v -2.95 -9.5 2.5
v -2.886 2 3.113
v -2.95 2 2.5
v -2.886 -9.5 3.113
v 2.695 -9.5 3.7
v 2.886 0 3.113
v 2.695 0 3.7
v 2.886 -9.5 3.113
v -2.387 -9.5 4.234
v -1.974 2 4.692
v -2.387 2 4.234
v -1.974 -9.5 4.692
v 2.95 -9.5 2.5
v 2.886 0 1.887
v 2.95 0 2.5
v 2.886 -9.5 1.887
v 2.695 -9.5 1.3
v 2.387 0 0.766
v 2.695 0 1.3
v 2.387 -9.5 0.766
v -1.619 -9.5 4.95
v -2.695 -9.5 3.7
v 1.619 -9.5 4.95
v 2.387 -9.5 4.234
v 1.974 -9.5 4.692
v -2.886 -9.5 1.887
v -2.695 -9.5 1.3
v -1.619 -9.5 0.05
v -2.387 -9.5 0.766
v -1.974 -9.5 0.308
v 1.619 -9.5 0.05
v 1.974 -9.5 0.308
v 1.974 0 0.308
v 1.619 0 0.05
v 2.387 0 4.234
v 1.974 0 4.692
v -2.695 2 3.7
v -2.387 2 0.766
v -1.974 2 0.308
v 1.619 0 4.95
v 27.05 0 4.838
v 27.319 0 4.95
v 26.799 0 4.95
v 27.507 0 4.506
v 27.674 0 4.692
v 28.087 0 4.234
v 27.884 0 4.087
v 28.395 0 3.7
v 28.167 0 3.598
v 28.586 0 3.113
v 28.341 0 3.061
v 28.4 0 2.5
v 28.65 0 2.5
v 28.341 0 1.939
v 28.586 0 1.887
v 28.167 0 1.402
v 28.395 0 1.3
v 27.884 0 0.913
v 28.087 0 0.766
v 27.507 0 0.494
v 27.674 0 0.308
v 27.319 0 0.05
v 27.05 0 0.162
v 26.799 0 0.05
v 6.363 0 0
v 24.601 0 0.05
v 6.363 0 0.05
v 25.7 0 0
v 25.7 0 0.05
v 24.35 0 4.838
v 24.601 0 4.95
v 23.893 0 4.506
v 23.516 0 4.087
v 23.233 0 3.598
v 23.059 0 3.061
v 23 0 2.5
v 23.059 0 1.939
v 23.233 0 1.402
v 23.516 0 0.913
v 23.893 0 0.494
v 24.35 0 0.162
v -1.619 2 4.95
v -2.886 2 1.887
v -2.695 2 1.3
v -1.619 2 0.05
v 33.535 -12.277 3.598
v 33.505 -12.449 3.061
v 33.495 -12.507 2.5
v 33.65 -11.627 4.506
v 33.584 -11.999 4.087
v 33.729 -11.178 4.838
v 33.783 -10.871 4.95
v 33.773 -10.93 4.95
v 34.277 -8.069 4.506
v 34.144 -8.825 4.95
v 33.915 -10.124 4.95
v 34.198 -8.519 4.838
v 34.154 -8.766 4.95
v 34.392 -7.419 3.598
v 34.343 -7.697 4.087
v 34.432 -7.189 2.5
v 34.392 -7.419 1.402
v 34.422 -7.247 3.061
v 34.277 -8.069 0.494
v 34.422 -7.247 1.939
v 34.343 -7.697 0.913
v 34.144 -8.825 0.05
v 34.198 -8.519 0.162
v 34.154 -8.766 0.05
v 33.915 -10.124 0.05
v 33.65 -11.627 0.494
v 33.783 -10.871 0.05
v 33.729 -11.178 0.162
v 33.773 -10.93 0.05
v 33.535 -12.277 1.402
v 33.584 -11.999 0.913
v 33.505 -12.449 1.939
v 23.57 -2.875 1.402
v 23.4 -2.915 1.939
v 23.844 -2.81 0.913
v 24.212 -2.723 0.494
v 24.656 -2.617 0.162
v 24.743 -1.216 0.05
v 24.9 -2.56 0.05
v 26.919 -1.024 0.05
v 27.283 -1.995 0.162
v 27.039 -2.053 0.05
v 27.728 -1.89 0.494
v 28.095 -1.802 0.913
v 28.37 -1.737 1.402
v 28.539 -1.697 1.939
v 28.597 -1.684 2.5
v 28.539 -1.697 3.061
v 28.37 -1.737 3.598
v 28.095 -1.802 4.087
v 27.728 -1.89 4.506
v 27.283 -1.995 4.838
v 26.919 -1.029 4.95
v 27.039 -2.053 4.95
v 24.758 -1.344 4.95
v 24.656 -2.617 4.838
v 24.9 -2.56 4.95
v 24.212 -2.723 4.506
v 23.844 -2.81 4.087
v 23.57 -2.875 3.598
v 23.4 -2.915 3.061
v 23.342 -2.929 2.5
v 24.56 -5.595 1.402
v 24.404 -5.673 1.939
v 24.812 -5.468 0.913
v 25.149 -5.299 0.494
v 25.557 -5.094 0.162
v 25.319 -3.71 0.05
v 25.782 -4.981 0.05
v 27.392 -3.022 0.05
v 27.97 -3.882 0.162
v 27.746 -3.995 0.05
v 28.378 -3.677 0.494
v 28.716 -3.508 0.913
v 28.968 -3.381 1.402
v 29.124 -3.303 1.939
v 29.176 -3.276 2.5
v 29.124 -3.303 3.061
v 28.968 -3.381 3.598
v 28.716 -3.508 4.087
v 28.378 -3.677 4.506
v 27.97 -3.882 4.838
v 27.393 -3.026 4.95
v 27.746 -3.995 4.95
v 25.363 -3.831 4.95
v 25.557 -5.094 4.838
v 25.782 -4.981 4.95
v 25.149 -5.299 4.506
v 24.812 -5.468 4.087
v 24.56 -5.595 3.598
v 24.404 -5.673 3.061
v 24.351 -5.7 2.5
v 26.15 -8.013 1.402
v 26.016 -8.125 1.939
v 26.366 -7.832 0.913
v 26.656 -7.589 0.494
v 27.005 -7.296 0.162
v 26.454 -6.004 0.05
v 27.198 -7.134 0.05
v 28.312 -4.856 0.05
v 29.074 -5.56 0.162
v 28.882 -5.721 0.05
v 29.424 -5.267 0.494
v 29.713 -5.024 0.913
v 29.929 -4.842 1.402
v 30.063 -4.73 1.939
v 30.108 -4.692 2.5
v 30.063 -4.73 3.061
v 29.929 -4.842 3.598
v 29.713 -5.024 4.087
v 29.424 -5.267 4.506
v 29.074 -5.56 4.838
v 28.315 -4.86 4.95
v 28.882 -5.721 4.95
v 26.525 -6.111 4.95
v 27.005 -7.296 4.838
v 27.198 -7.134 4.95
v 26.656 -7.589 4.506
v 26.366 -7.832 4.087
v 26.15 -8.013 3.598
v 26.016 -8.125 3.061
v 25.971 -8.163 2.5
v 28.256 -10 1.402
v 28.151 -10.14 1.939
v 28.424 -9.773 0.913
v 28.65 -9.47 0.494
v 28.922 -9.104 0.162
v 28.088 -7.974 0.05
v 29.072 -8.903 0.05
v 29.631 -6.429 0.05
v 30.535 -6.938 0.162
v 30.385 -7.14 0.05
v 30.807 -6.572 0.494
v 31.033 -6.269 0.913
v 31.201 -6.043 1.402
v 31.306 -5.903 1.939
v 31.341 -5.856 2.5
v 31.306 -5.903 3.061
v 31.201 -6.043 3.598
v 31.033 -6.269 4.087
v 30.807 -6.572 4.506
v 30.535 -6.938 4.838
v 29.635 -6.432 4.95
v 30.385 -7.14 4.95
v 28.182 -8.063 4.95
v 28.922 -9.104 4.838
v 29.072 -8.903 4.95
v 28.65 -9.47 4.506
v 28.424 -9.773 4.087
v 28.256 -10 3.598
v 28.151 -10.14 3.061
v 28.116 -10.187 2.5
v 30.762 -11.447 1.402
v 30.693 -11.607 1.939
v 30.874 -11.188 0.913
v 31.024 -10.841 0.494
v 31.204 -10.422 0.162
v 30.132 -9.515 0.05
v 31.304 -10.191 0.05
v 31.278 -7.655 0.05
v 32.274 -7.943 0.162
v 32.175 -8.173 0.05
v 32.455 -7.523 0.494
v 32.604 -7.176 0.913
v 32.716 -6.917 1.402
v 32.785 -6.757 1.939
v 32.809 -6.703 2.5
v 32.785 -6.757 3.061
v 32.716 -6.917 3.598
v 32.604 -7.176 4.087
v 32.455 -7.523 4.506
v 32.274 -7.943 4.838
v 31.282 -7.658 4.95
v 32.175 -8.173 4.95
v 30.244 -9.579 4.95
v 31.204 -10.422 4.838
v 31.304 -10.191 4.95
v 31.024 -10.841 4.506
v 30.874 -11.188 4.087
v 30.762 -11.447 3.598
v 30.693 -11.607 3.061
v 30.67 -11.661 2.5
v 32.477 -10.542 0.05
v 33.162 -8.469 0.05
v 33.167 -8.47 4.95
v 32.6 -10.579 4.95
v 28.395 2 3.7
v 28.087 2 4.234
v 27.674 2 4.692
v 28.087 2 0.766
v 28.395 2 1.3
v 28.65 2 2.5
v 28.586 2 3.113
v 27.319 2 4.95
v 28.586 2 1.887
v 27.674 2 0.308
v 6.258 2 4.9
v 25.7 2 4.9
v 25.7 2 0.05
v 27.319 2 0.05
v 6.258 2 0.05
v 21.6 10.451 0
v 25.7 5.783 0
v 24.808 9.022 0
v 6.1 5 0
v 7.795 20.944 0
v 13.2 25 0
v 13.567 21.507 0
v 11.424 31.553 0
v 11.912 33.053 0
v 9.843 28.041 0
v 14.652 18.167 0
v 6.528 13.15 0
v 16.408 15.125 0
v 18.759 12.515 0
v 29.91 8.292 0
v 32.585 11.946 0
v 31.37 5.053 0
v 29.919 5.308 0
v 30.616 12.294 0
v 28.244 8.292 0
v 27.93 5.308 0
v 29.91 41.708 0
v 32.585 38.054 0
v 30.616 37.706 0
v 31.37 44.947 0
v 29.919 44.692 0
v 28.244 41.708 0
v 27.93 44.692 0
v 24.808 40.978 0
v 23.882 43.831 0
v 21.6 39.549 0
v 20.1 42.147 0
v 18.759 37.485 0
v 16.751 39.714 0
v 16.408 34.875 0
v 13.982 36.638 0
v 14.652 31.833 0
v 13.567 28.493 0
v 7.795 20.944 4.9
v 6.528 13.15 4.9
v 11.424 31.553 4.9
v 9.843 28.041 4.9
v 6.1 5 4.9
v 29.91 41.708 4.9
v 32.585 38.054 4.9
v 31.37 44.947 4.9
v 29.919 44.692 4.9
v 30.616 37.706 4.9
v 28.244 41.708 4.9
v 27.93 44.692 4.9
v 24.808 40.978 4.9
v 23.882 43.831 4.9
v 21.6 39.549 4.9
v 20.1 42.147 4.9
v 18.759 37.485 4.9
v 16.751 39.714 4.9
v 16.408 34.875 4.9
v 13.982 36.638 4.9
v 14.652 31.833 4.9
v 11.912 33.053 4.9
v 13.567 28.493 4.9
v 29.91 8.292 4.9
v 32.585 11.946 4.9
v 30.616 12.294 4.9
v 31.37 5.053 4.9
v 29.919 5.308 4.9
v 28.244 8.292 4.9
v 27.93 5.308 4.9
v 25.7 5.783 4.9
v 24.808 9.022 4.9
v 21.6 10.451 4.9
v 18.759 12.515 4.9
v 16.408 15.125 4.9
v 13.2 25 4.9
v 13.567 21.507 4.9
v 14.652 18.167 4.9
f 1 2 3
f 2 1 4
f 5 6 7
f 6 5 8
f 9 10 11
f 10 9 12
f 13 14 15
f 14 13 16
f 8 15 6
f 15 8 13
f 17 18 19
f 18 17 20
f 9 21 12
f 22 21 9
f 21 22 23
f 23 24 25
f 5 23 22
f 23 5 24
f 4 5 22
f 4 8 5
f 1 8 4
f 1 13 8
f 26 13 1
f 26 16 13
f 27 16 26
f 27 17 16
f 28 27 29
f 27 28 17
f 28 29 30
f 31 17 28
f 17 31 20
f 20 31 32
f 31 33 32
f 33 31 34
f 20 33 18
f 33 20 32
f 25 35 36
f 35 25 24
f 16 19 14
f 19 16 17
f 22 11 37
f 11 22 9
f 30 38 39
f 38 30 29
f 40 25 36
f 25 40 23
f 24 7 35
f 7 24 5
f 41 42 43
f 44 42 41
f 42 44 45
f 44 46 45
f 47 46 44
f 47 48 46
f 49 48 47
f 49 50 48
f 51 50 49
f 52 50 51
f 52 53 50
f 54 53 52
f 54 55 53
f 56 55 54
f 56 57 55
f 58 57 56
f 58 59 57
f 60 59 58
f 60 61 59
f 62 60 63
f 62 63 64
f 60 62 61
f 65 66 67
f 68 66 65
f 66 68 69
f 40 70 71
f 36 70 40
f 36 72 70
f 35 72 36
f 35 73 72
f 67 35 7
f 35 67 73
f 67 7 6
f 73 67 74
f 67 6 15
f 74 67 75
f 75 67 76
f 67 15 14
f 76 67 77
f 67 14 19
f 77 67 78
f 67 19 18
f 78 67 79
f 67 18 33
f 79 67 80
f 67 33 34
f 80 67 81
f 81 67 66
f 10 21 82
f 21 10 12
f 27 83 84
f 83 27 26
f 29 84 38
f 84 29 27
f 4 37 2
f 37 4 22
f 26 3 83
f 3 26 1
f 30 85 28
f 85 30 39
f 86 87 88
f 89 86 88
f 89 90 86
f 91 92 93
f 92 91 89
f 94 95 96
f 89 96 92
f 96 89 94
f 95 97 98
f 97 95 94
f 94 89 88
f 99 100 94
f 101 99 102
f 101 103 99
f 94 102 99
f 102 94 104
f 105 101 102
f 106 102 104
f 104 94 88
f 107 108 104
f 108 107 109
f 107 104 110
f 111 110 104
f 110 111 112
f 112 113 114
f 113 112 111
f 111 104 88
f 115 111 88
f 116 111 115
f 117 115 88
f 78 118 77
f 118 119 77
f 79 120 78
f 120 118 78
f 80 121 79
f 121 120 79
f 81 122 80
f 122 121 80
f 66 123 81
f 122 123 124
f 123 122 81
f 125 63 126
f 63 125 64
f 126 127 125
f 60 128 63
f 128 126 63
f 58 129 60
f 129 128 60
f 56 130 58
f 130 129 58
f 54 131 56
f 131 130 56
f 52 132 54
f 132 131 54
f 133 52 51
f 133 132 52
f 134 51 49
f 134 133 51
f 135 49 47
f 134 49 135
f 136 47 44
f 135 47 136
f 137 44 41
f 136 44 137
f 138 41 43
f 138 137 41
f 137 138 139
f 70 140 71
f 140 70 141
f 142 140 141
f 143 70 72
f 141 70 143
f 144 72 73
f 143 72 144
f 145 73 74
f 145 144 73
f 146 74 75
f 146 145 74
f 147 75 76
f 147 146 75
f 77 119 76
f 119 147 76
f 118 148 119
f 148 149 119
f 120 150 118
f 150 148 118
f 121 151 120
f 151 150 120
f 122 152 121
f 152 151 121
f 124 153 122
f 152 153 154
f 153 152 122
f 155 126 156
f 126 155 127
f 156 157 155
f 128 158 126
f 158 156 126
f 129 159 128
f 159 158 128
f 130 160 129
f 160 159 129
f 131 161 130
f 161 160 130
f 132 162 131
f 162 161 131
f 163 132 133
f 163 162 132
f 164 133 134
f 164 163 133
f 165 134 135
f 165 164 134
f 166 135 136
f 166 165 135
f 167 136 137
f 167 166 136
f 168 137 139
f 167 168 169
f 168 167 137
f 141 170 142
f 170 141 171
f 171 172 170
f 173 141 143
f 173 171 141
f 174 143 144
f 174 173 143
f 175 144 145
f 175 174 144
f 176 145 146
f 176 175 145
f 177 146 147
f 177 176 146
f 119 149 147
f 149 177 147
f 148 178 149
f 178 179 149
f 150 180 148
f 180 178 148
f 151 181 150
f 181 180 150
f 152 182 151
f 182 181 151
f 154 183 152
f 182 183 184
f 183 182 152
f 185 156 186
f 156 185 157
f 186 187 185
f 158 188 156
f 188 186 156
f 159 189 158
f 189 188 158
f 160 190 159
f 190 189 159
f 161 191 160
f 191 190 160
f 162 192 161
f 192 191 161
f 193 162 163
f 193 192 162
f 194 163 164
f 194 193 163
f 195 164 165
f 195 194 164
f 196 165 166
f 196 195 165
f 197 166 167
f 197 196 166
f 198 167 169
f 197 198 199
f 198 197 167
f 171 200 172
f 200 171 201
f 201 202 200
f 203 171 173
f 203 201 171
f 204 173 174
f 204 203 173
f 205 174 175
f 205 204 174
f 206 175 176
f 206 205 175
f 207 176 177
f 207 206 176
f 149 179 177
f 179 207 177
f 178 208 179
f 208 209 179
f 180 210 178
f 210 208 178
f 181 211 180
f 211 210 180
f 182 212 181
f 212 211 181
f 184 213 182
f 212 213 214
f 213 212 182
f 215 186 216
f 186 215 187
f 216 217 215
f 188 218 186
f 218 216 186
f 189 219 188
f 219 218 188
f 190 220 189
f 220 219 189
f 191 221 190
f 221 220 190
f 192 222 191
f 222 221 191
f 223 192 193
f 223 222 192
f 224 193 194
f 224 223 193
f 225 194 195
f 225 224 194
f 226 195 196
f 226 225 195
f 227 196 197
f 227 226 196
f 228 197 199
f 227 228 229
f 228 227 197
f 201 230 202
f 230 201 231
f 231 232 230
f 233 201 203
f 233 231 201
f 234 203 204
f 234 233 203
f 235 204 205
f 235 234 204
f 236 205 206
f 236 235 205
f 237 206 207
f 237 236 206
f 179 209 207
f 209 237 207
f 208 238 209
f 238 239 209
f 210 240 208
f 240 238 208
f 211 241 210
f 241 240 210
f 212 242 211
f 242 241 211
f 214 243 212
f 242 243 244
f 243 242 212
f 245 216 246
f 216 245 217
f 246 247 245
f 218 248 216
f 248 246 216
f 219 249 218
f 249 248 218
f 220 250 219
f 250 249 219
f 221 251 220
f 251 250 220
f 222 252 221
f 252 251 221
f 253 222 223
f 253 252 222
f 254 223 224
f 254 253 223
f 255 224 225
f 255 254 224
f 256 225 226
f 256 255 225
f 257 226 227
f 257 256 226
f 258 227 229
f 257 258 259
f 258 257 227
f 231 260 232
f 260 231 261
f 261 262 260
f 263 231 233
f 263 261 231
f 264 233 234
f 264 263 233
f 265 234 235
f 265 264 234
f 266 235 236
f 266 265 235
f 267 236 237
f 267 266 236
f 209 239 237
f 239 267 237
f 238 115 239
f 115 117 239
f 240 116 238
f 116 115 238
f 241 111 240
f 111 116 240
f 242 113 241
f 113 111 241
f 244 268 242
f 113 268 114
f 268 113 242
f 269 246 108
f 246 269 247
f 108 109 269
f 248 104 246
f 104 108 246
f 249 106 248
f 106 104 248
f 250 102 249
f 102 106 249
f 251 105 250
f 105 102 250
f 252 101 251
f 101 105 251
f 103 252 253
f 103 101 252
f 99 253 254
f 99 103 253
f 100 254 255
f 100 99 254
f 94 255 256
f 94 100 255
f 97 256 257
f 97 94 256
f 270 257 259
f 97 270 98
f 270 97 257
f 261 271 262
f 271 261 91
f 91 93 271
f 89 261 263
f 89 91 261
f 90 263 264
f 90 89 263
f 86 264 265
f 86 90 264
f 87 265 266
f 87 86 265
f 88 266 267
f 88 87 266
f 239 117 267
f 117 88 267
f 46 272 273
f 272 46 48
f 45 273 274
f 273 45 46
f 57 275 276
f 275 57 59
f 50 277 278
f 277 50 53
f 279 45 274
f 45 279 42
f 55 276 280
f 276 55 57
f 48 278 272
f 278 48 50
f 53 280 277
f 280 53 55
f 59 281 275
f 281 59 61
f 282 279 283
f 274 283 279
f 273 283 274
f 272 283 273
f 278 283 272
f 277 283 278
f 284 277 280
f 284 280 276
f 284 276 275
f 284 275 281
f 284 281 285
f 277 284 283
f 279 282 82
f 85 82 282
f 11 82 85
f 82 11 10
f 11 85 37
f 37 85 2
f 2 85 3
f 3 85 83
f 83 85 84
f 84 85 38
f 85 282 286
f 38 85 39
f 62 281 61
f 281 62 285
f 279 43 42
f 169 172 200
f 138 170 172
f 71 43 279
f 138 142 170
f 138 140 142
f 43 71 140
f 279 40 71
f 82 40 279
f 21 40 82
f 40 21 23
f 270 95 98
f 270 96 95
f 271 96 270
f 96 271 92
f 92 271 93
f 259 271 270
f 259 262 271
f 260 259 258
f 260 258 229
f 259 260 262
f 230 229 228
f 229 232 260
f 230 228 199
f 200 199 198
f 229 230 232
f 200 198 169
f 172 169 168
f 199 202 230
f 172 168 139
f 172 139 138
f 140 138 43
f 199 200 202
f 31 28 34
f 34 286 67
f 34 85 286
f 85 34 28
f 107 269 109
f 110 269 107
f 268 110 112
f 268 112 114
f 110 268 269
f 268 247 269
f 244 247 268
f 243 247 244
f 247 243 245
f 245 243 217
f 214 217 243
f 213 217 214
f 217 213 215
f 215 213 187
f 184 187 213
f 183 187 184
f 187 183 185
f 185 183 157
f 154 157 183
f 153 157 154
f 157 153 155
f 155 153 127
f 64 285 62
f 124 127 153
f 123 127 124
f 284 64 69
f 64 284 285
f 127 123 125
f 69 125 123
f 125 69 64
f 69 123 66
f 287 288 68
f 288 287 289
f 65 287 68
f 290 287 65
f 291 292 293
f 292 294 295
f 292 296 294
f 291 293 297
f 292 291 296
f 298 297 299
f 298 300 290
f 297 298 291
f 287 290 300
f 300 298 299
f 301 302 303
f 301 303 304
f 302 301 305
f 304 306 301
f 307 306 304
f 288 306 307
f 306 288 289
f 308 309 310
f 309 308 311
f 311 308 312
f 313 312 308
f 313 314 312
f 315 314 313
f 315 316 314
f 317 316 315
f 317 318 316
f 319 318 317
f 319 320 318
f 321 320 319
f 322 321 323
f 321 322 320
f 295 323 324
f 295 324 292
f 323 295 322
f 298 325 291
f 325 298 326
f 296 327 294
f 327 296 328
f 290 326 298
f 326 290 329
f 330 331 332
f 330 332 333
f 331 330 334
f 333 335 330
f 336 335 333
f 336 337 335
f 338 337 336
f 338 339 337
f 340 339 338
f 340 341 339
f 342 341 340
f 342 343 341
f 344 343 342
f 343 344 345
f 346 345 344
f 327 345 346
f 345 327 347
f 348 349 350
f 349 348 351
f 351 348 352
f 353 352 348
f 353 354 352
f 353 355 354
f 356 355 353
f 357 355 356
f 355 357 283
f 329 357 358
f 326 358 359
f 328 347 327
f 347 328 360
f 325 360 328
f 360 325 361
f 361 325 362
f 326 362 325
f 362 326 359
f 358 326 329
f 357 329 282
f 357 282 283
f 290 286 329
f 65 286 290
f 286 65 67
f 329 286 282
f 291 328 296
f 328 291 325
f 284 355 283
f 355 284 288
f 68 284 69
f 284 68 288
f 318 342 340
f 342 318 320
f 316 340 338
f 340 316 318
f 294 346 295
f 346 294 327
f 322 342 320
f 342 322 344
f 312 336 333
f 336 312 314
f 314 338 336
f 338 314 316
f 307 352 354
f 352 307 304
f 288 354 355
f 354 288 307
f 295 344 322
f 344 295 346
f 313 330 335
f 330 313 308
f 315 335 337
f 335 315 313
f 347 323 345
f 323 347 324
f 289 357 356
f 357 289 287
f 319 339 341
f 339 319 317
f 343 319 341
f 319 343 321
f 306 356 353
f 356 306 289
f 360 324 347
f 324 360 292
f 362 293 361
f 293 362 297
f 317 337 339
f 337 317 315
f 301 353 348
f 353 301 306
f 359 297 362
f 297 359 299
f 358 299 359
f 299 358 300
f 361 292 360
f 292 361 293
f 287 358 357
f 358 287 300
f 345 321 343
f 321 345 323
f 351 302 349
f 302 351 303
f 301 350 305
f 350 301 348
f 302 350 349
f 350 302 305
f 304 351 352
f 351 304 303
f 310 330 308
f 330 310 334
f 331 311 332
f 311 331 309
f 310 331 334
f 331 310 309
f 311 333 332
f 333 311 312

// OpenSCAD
peg_d = 5.9;
peg_spacing = 25.7;
board_thickness = 4.5;
$fn = 30;

module peg() {
  rotate([90,0,0])
  difference() {
    union() {
      cylinder(d=peg_d, h=board_thickness+5);
      
      translate([10+peg_spacing,0,0])
      rotate([90,0,180])
      rotate_extrude(angle=80)
      translate([10, 0, 0])
      circle(d=peg_d-0.5);
      
      translate([0,0,-2])
      hull() {
        cylinder(d=peg_d, h=2);
        translate([peg_spacing,0,0])
        cylinder(d=peg_d, h=2);
      }
    }
  
    translate([-5,peg_d/2-0.5,-25]) cube(size=[50,10,50]);
    translate([-5,-10-peg_d/2+0.5,-25]) cube(size=[50,10,50]);
  }
}

wire_d = 2.0; // 1.3
marble_d = 15.5;

module wire_snap(a=0) {
  rotate([0,0,a])
  difference() {
    cylinder(d=wire_d + 4.0, h=5);
    translate([0,0,-0.05]) cylinder(d=wire_d, h=5.1);
    translate([-0.0,-6.5,-10]) scale([1.0,2.5,1]) rotate([0,0,45]) cube(size=[2,2,20]);

    translate([0,-5,7]) rotate([45,0,0]) cube(size=[10,10,10], center=true);
    translate([0,-4.5,7]) rotate([60,0,0]) cube(size=[10,10,10], center=true);
    translate([0,-4.5,-2]) rotate([30,0,0]) cube(size=[10,10,10], center=true);
    translate([0,-6.2,0]) cube(size=[10,10,10], center=true);
  };
};

track_gauge = marble_d - 2;
module wire_track_section() {
  scale([1,2,1])
  difference() {
    cylinder(d=track_gauge/2,h=3);
    translate([0,0,-0.05]) cylinder(d=track_gauge/2-2,h=3.1);
    translate([0, -track_gauge/2, -1]) cube([track_gauge, track_gauge, 5]);
  }

  difference() {
    union() {
      translate([2,track_gauge/2-1,-0]) wire_snap(50);
      translate([2,-track_gauge/2+1,-0]) wire_snap(130);
    };
    translate([3.75,-track_gauge,-0.05]) cube(size=[10, track_gauge*2,5.1]);
    
  };
};

//translate([12,7,0]) rotate([0,0,0]) wire_track_section();
//translate([10,2,0]) rotate([0,0,90]) rotate_extrude(angle=90) translate([5,0,0]) square([5,5]);
//wire_snap(0);
//translate([0,-6,5]) rotate([-45,0,0]) cube(size=[10,10,10], center=true);

pipe_d = 33.2;
pipe_hs = [16.7, 17.1, 15.1, 15.7, 12.8,15.3, 15.0, 15.3, 16.7, 16.7];
pipe_h = 17;
pipe_wall = 3.8;
pipe_inner_d = 25.8;
margin = 0.4;
cradle_top = -pipe_d/2 + pipe_h;
cradle_wall = 3;
cradle_d = pipe_d + cradle_wall*2;
cradle_thickness = peg_d - 1;

module pipe_holder() {
  difference() {
    cylinder(d=pipe_d + cradle_wall*2 + margin, h = cradle_thickness);
    translate([0,0,-0.05]) cylinder(d=pipe_d + margin, h = cradle_thickness + 0.1);
    translate([cradle_top, -pipe_d,-0.1]) cube(size=[100,100,100]);
  }
  translate([cradle_top - 1, -cradle_d/2,0]) rotate([0,0,-10]) cube(size=[2,7, cradle_thickness]);
  translate([cradle_top - 1, cradle_d/2,cradle_thickness]) rotate([180,0,10]) cube(size=[2,7, cradle_thickness]);
  // Pipe connector
  translate([-4.3, -cradle_d/2 - margin, 0])
  difference() {
    scale([1,2,1]) cylinder(d=cradle_d , h=cradle_thickness);
    translate([-00, -50, -0.1]) cube(size=[100,100,100]);
    translate([-50, -105, -0.01]) cube(size=[100,100,100]);
    translate([-50, cradle_d/2 + 10, -0.01]) cube(size=[100,100,100]);
    translate([4.0, cradle_d/2 ,-0.05]) cylinder(d=pipe_d + margin, h = cradle_thickness + 0.1);
  }
}

translate([0,0,02.5]) peg();
translate([30,25,0]) pipe_holder();
